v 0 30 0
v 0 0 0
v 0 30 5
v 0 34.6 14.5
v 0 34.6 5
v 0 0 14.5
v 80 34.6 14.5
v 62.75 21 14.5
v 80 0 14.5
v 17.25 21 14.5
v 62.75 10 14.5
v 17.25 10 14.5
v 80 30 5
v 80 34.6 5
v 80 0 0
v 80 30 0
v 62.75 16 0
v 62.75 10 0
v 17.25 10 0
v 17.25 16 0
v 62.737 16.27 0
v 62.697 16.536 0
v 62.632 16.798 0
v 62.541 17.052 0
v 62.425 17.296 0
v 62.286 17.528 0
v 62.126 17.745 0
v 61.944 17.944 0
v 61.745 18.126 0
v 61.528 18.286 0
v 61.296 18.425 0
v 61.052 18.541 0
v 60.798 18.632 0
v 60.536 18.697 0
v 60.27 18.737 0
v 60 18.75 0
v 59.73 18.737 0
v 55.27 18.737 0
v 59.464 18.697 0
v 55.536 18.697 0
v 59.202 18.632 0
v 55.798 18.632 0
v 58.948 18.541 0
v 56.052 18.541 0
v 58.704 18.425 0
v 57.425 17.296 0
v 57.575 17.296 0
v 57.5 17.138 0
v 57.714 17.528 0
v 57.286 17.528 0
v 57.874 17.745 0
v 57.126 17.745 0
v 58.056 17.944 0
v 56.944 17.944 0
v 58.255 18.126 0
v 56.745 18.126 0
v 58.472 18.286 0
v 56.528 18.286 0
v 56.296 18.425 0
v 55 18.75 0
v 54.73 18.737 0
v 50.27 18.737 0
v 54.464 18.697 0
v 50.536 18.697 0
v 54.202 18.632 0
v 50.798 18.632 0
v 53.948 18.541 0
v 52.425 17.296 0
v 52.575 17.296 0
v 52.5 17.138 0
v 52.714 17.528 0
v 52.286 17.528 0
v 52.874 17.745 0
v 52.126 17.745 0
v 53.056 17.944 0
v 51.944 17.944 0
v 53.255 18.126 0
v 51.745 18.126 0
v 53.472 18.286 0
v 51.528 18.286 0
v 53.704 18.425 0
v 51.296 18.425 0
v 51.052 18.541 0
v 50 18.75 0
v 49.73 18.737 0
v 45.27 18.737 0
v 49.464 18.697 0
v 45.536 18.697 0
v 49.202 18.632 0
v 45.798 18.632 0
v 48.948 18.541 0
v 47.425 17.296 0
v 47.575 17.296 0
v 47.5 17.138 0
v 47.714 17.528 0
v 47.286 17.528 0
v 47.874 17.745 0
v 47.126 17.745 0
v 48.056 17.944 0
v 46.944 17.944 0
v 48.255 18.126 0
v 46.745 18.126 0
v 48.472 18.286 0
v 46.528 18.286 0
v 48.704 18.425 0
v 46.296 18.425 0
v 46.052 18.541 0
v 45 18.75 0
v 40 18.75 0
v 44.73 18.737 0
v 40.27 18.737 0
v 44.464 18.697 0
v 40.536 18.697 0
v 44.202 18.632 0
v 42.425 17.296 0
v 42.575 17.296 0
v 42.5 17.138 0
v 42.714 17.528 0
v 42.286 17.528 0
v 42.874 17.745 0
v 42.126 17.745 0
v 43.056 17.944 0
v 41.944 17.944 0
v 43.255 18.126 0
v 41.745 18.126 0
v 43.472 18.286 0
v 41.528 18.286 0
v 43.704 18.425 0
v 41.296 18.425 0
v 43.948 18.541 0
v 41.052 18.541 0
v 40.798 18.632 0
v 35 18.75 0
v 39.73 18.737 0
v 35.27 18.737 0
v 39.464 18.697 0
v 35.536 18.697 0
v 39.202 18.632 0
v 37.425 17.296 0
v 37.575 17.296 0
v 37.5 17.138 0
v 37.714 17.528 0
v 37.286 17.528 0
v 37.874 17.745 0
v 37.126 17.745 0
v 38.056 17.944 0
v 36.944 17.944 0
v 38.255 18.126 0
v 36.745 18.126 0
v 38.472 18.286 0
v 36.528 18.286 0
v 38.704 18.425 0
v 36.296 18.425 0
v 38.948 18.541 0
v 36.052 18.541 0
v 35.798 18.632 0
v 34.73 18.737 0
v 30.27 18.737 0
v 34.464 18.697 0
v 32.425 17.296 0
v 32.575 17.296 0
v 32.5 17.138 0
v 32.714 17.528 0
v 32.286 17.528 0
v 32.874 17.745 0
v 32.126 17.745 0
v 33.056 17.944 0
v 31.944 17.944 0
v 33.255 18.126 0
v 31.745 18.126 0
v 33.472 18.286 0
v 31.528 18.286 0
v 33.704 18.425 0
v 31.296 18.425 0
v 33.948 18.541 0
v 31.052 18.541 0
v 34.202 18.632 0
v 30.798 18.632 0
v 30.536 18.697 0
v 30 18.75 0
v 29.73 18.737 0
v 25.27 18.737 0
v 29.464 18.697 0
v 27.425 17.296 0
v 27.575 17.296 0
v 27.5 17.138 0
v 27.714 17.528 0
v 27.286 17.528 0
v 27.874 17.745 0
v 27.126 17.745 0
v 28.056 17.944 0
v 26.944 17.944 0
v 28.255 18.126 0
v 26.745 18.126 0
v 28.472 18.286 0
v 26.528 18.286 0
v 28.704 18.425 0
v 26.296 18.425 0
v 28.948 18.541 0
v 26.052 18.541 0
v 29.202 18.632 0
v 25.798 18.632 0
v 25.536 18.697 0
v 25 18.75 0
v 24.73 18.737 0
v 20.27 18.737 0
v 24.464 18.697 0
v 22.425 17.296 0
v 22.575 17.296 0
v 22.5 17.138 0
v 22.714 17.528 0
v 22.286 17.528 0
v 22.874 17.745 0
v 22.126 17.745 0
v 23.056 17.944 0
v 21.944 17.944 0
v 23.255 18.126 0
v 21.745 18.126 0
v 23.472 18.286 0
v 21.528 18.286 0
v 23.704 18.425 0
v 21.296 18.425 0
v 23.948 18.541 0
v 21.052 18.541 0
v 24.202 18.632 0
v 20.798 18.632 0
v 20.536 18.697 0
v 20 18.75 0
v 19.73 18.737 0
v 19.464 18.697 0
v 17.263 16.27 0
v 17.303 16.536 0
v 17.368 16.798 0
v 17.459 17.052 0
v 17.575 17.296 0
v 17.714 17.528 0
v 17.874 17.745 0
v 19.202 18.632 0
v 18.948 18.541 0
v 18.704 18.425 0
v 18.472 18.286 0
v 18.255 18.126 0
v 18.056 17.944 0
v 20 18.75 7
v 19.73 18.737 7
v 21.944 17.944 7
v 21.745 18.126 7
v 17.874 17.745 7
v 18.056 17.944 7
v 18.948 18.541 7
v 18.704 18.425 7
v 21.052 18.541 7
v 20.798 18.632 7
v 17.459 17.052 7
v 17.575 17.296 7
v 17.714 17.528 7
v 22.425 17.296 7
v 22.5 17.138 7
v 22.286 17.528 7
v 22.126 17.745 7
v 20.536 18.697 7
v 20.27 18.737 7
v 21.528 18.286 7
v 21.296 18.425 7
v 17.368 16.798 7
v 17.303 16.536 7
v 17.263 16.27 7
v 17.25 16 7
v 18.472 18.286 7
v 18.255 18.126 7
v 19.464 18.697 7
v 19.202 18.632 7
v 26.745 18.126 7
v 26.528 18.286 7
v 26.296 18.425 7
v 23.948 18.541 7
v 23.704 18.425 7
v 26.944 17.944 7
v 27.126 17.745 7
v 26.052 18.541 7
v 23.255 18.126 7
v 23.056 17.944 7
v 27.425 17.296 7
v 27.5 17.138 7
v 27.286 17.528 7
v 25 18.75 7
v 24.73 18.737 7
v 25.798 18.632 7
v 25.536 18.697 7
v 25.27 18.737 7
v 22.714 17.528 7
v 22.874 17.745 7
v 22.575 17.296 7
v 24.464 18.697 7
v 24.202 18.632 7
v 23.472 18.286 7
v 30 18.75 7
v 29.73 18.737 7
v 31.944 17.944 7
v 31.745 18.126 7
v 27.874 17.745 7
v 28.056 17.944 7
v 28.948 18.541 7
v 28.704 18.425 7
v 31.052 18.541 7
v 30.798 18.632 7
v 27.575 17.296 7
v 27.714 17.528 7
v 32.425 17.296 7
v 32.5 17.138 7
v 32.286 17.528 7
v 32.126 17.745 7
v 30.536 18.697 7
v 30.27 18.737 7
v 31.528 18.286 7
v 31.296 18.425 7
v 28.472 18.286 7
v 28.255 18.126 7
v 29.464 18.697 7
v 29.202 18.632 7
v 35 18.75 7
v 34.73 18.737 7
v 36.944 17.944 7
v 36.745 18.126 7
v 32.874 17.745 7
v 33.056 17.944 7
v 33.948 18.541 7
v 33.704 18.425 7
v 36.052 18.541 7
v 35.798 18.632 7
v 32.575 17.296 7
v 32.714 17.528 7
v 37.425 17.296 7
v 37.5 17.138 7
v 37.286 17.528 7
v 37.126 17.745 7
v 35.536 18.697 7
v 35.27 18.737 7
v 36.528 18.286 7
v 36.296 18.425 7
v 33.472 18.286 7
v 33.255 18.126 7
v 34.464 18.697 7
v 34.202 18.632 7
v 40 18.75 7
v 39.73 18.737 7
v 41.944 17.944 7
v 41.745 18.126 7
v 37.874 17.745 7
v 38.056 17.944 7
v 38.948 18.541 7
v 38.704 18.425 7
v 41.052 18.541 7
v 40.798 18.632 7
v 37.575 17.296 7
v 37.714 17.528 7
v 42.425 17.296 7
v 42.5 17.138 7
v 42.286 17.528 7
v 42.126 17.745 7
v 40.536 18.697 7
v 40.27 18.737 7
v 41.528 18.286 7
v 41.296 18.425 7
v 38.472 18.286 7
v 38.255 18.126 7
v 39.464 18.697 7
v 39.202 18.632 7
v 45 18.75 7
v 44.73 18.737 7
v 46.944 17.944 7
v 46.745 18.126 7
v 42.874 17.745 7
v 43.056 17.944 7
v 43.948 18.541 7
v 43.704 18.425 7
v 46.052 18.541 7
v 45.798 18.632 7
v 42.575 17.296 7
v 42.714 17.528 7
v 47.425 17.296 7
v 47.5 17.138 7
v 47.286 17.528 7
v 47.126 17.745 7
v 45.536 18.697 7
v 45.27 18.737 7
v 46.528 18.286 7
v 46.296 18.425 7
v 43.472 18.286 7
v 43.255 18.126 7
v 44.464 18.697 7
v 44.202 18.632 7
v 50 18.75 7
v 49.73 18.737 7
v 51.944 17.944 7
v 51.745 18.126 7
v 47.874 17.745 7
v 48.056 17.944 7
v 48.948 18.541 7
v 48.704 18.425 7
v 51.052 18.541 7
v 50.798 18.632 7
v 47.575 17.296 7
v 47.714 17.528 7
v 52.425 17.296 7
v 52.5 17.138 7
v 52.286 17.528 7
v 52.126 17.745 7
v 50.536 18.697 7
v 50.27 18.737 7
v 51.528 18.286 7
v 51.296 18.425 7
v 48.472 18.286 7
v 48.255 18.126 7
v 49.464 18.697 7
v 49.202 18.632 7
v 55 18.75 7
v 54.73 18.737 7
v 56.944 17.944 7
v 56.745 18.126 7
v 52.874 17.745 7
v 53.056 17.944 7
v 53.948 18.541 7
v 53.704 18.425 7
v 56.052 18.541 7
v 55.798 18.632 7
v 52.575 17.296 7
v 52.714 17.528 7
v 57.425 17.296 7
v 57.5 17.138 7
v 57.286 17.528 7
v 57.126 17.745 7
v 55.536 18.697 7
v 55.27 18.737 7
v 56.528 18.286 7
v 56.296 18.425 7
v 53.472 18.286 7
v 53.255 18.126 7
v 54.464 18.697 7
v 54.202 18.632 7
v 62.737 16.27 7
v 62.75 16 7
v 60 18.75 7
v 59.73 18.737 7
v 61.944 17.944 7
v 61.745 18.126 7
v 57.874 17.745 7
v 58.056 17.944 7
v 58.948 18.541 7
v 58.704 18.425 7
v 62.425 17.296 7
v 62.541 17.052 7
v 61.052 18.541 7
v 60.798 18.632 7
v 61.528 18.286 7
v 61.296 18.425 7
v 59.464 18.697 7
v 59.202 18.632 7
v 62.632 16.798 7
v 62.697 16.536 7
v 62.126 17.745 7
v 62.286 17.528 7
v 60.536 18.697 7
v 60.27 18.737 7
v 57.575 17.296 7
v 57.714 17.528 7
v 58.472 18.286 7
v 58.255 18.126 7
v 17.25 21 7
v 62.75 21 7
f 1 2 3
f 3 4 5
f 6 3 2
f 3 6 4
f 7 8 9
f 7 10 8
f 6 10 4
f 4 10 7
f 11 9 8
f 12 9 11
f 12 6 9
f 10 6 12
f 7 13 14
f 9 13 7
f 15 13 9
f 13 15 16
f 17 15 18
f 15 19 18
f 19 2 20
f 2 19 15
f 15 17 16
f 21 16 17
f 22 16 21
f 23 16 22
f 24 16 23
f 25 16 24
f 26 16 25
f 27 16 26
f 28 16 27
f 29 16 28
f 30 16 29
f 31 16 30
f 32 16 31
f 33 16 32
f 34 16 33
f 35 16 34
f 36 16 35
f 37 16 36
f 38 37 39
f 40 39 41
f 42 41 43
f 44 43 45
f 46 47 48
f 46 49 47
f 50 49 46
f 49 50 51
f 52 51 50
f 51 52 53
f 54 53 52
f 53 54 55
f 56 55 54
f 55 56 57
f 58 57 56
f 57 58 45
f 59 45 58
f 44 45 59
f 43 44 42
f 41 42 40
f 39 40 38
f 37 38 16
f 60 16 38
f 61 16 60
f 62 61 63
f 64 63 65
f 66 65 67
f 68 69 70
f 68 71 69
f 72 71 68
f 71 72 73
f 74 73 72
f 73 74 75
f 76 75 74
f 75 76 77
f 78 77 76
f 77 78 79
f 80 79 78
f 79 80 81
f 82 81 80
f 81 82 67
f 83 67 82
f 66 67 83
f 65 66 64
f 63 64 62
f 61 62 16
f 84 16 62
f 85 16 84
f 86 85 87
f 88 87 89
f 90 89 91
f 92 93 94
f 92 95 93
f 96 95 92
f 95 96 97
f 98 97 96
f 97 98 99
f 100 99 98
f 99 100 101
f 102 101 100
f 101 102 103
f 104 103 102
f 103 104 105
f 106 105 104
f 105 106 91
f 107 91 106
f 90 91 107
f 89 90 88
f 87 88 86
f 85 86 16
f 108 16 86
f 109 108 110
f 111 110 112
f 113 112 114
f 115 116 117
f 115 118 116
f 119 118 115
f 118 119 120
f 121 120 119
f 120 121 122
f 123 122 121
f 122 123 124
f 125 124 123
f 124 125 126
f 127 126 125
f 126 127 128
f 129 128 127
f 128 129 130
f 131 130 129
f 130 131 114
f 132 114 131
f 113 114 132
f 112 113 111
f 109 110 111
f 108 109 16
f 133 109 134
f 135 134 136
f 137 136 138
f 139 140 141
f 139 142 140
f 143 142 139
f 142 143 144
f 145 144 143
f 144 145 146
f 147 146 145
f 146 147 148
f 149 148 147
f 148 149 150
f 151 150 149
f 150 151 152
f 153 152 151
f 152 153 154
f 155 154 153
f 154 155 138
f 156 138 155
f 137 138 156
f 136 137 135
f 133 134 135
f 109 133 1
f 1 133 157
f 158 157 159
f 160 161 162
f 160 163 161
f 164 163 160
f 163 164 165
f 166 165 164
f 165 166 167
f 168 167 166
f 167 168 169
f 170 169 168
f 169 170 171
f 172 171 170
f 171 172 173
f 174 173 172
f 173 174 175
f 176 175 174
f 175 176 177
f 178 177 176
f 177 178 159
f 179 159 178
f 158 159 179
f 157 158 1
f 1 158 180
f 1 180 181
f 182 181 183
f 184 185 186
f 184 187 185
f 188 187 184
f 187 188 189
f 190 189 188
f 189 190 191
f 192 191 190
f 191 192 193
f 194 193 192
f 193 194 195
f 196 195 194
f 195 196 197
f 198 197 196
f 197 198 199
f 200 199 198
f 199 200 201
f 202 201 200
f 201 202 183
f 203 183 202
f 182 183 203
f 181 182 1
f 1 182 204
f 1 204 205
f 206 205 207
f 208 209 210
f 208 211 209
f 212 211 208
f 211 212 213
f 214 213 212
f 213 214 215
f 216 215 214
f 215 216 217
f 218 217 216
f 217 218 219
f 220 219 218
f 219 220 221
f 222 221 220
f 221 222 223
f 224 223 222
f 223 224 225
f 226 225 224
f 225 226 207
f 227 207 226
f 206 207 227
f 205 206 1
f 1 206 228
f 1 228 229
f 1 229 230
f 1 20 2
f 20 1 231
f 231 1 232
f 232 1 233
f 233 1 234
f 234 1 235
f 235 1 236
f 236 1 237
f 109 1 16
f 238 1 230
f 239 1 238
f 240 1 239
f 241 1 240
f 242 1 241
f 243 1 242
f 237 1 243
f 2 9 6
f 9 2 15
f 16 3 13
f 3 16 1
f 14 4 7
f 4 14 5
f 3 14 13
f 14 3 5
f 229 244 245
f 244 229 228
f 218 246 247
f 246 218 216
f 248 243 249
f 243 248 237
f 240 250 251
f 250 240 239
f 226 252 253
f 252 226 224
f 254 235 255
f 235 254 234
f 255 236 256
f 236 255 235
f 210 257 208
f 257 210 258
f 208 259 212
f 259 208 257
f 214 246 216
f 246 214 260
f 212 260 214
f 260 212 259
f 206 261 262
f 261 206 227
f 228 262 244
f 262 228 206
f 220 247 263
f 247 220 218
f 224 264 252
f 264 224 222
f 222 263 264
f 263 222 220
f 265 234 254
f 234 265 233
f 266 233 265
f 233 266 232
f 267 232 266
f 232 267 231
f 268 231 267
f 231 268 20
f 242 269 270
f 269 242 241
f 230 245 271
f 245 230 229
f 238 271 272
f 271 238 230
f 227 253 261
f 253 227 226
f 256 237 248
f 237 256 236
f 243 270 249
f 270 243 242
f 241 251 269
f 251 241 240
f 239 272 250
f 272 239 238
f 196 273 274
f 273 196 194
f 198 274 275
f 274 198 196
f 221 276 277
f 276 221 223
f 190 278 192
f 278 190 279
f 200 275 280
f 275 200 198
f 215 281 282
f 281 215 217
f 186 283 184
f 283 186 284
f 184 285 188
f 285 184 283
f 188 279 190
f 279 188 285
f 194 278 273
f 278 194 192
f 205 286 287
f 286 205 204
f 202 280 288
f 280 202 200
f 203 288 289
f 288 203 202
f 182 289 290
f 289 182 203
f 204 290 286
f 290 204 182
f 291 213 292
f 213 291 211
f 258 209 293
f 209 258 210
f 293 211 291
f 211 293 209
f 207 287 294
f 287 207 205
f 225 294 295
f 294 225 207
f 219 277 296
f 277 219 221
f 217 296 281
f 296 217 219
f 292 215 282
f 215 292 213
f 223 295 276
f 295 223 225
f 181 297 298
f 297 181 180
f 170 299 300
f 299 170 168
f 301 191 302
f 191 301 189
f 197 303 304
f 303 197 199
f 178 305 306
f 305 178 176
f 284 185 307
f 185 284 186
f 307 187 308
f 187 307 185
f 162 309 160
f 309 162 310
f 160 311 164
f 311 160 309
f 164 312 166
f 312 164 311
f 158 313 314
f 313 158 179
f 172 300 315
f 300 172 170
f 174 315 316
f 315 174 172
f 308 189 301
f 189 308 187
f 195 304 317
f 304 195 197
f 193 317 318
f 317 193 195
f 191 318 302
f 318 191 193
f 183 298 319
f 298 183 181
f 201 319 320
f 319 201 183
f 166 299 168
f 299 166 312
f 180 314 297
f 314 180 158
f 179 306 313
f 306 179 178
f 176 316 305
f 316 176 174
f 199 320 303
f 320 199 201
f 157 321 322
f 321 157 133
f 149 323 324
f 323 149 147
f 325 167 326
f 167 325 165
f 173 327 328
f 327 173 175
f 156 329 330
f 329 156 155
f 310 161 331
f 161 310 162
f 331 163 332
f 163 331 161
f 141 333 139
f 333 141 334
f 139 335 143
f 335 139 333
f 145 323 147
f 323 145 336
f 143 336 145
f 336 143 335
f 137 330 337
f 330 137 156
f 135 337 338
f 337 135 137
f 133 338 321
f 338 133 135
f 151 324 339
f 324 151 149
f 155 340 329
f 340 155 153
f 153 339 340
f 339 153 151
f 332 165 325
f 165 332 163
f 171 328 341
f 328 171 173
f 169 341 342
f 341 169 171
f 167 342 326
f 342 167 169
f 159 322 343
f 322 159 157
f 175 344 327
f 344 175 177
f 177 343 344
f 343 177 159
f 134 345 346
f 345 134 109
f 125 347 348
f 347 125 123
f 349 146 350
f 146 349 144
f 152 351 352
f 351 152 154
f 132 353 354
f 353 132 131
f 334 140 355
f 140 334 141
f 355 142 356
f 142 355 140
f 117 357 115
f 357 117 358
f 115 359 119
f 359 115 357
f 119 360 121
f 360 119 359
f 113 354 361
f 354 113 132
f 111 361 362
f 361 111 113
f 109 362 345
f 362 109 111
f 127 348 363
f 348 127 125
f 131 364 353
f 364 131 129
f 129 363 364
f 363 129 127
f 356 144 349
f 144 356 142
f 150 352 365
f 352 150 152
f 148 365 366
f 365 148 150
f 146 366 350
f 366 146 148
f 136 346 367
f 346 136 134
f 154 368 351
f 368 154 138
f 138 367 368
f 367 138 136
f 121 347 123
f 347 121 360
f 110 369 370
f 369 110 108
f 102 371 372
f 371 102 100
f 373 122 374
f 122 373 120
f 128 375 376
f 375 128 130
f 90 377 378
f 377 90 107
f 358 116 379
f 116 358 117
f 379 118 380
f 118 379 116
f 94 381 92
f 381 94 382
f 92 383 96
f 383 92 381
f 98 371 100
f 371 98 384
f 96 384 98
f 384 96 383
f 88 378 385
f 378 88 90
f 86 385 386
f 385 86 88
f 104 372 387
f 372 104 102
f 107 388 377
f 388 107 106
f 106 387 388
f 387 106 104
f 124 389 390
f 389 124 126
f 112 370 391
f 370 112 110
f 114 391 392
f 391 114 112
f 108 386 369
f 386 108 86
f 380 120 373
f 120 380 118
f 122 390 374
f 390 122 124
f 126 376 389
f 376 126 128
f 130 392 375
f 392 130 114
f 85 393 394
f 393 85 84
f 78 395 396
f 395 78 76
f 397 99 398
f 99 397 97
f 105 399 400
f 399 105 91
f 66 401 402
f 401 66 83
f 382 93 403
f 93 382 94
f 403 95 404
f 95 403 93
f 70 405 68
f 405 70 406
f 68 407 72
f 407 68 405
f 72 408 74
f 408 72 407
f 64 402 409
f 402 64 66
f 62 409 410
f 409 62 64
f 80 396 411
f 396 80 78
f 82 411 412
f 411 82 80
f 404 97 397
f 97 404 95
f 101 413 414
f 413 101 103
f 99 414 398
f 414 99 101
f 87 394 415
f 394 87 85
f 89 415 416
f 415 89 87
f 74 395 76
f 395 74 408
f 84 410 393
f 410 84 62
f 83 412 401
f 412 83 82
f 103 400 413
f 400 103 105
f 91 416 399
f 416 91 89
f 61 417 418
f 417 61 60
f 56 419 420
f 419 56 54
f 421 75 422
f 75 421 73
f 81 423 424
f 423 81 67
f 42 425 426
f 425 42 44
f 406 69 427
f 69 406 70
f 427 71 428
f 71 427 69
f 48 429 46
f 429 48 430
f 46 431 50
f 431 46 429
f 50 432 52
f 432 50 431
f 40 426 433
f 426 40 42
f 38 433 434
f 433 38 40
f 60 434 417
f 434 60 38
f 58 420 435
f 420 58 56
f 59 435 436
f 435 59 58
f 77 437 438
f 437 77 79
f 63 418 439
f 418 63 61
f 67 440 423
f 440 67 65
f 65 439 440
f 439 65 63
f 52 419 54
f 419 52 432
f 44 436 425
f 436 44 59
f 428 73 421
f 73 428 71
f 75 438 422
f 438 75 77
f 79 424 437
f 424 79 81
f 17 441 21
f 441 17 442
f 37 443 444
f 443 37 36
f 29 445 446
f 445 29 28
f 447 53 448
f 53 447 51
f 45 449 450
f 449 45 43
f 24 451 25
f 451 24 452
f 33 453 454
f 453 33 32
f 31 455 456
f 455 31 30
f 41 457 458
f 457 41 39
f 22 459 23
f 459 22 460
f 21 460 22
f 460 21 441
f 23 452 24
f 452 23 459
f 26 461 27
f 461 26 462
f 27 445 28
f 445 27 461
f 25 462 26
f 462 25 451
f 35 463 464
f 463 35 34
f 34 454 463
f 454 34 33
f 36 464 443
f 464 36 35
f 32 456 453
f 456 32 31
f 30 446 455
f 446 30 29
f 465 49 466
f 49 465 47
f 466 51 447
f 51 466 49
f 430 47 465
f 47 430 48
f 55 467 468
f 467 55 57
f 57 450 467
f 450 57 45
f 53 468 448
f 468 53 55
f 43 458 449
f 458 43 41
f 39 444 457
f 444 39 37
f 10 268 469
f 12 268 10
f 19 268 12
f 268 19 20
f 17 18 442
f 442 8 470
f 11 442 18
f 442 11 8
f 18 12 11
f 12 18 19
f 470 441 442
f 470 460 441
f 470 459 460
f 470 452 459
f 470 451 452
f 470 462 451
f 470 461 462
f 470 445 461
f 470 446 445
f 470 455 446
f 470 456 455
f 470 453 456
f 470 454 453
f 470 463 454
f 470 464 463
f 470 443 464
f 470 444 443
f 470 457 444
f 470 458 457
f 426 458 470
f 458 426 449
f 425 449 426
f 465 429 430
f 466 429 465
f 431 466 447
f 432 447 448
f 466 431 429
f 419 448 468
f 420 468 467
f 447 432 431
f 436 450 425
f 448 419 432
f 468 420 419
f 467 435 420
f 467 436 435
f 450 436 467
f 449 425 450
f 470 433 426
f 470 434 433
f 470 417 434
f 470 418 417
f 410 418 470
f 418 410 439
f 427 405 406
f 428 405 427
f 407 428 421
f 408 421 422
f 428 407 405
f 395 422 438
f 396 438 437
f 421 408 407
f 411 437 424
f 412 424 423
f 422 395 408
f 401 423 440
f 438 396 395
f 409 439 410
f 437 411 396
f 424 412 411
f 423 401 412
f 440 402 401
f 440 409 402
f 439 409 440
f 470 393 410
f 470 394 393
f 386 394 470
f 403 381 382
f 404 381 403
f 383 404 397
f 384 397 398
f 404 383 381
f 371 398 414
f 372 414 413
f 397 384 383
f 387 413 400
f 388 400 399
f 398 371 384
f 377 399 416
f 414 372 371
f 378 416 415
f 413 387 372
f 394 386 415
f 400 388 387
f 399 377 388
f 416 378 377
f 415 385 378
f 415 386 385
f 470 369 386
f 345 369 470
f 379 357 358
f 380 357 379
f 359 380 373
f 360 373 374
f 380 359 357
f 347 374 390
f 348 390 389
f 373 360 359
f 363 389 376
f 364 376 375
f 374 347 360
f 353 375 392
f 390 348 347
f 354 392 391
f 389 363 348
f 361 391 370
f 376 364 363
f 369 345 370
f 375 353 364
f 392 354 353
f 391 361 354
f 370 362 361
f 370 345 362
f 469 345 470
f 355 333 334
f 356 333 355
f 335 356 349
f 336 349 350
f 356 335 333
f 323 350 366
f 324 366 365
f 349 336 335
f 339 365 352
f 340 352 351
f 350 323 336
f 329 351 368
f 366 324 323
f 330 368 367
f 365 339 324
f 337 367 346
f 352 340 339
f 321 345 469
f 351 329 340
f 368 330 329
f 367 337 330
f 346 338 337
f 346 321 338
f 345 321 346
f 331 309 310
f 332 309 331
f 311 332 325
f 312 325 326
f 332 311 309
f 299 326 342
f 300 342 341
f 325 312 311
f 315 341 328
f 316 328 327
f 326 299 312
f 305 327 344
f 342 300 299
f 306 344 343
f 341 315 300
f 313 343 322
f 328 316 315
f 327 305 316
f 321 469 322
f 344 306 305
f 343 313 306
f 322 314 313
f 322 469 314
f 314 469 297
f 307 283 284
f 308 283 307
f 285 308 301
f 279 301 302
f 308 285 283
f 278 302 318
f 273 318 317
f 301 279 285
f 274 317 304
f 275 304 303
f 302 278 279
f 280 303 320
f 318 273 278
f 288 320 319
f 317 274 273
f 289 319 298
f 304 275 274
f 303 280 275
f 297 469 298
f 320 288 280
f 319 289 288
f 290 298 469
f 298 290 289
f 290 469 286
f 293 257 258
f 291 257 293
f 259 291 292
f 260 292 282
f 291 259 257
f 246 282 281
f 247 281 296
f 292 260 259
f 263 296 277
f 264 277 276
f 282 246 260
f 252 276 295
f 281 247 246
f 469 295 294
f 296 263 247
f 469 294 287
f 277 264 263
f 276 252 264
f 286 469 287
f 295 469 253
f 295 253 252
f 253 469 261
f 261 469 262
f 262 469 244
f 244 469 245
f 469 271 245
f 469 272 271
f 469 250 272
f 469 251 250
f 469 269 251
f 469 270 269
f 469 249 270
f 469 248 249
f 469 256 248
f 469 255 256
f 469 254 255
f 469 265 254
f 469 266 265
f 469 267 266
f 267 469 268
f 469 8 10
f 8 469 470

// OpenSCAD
$fn = 64;
frame_depth = 14.5;
frame_lip = 5;
frame_lip_overhang = 4.6;
slack = 0.01;

difference() {
    union() {
        cube([80, 30, 14.5]);
        translate([0, 30, frame_lip])
            cube([80, frame_lip_overhang, frame_depth - frame_lip]);
    }
    for(i = [0:8]) {
        translate([20 + 5 * i, 16, 0])
            cylinder(d = 5.5, h = frame_depth + slack);
    }
    translate([20 - 5.5/2, 10, 0])
        cube([40 + 5.5, 6, frame_depth + slack]);
    translate([20 - 5.5/2, 15, 7])
        cube([40 + 5.5, 6, frame_depth]);    
}    
